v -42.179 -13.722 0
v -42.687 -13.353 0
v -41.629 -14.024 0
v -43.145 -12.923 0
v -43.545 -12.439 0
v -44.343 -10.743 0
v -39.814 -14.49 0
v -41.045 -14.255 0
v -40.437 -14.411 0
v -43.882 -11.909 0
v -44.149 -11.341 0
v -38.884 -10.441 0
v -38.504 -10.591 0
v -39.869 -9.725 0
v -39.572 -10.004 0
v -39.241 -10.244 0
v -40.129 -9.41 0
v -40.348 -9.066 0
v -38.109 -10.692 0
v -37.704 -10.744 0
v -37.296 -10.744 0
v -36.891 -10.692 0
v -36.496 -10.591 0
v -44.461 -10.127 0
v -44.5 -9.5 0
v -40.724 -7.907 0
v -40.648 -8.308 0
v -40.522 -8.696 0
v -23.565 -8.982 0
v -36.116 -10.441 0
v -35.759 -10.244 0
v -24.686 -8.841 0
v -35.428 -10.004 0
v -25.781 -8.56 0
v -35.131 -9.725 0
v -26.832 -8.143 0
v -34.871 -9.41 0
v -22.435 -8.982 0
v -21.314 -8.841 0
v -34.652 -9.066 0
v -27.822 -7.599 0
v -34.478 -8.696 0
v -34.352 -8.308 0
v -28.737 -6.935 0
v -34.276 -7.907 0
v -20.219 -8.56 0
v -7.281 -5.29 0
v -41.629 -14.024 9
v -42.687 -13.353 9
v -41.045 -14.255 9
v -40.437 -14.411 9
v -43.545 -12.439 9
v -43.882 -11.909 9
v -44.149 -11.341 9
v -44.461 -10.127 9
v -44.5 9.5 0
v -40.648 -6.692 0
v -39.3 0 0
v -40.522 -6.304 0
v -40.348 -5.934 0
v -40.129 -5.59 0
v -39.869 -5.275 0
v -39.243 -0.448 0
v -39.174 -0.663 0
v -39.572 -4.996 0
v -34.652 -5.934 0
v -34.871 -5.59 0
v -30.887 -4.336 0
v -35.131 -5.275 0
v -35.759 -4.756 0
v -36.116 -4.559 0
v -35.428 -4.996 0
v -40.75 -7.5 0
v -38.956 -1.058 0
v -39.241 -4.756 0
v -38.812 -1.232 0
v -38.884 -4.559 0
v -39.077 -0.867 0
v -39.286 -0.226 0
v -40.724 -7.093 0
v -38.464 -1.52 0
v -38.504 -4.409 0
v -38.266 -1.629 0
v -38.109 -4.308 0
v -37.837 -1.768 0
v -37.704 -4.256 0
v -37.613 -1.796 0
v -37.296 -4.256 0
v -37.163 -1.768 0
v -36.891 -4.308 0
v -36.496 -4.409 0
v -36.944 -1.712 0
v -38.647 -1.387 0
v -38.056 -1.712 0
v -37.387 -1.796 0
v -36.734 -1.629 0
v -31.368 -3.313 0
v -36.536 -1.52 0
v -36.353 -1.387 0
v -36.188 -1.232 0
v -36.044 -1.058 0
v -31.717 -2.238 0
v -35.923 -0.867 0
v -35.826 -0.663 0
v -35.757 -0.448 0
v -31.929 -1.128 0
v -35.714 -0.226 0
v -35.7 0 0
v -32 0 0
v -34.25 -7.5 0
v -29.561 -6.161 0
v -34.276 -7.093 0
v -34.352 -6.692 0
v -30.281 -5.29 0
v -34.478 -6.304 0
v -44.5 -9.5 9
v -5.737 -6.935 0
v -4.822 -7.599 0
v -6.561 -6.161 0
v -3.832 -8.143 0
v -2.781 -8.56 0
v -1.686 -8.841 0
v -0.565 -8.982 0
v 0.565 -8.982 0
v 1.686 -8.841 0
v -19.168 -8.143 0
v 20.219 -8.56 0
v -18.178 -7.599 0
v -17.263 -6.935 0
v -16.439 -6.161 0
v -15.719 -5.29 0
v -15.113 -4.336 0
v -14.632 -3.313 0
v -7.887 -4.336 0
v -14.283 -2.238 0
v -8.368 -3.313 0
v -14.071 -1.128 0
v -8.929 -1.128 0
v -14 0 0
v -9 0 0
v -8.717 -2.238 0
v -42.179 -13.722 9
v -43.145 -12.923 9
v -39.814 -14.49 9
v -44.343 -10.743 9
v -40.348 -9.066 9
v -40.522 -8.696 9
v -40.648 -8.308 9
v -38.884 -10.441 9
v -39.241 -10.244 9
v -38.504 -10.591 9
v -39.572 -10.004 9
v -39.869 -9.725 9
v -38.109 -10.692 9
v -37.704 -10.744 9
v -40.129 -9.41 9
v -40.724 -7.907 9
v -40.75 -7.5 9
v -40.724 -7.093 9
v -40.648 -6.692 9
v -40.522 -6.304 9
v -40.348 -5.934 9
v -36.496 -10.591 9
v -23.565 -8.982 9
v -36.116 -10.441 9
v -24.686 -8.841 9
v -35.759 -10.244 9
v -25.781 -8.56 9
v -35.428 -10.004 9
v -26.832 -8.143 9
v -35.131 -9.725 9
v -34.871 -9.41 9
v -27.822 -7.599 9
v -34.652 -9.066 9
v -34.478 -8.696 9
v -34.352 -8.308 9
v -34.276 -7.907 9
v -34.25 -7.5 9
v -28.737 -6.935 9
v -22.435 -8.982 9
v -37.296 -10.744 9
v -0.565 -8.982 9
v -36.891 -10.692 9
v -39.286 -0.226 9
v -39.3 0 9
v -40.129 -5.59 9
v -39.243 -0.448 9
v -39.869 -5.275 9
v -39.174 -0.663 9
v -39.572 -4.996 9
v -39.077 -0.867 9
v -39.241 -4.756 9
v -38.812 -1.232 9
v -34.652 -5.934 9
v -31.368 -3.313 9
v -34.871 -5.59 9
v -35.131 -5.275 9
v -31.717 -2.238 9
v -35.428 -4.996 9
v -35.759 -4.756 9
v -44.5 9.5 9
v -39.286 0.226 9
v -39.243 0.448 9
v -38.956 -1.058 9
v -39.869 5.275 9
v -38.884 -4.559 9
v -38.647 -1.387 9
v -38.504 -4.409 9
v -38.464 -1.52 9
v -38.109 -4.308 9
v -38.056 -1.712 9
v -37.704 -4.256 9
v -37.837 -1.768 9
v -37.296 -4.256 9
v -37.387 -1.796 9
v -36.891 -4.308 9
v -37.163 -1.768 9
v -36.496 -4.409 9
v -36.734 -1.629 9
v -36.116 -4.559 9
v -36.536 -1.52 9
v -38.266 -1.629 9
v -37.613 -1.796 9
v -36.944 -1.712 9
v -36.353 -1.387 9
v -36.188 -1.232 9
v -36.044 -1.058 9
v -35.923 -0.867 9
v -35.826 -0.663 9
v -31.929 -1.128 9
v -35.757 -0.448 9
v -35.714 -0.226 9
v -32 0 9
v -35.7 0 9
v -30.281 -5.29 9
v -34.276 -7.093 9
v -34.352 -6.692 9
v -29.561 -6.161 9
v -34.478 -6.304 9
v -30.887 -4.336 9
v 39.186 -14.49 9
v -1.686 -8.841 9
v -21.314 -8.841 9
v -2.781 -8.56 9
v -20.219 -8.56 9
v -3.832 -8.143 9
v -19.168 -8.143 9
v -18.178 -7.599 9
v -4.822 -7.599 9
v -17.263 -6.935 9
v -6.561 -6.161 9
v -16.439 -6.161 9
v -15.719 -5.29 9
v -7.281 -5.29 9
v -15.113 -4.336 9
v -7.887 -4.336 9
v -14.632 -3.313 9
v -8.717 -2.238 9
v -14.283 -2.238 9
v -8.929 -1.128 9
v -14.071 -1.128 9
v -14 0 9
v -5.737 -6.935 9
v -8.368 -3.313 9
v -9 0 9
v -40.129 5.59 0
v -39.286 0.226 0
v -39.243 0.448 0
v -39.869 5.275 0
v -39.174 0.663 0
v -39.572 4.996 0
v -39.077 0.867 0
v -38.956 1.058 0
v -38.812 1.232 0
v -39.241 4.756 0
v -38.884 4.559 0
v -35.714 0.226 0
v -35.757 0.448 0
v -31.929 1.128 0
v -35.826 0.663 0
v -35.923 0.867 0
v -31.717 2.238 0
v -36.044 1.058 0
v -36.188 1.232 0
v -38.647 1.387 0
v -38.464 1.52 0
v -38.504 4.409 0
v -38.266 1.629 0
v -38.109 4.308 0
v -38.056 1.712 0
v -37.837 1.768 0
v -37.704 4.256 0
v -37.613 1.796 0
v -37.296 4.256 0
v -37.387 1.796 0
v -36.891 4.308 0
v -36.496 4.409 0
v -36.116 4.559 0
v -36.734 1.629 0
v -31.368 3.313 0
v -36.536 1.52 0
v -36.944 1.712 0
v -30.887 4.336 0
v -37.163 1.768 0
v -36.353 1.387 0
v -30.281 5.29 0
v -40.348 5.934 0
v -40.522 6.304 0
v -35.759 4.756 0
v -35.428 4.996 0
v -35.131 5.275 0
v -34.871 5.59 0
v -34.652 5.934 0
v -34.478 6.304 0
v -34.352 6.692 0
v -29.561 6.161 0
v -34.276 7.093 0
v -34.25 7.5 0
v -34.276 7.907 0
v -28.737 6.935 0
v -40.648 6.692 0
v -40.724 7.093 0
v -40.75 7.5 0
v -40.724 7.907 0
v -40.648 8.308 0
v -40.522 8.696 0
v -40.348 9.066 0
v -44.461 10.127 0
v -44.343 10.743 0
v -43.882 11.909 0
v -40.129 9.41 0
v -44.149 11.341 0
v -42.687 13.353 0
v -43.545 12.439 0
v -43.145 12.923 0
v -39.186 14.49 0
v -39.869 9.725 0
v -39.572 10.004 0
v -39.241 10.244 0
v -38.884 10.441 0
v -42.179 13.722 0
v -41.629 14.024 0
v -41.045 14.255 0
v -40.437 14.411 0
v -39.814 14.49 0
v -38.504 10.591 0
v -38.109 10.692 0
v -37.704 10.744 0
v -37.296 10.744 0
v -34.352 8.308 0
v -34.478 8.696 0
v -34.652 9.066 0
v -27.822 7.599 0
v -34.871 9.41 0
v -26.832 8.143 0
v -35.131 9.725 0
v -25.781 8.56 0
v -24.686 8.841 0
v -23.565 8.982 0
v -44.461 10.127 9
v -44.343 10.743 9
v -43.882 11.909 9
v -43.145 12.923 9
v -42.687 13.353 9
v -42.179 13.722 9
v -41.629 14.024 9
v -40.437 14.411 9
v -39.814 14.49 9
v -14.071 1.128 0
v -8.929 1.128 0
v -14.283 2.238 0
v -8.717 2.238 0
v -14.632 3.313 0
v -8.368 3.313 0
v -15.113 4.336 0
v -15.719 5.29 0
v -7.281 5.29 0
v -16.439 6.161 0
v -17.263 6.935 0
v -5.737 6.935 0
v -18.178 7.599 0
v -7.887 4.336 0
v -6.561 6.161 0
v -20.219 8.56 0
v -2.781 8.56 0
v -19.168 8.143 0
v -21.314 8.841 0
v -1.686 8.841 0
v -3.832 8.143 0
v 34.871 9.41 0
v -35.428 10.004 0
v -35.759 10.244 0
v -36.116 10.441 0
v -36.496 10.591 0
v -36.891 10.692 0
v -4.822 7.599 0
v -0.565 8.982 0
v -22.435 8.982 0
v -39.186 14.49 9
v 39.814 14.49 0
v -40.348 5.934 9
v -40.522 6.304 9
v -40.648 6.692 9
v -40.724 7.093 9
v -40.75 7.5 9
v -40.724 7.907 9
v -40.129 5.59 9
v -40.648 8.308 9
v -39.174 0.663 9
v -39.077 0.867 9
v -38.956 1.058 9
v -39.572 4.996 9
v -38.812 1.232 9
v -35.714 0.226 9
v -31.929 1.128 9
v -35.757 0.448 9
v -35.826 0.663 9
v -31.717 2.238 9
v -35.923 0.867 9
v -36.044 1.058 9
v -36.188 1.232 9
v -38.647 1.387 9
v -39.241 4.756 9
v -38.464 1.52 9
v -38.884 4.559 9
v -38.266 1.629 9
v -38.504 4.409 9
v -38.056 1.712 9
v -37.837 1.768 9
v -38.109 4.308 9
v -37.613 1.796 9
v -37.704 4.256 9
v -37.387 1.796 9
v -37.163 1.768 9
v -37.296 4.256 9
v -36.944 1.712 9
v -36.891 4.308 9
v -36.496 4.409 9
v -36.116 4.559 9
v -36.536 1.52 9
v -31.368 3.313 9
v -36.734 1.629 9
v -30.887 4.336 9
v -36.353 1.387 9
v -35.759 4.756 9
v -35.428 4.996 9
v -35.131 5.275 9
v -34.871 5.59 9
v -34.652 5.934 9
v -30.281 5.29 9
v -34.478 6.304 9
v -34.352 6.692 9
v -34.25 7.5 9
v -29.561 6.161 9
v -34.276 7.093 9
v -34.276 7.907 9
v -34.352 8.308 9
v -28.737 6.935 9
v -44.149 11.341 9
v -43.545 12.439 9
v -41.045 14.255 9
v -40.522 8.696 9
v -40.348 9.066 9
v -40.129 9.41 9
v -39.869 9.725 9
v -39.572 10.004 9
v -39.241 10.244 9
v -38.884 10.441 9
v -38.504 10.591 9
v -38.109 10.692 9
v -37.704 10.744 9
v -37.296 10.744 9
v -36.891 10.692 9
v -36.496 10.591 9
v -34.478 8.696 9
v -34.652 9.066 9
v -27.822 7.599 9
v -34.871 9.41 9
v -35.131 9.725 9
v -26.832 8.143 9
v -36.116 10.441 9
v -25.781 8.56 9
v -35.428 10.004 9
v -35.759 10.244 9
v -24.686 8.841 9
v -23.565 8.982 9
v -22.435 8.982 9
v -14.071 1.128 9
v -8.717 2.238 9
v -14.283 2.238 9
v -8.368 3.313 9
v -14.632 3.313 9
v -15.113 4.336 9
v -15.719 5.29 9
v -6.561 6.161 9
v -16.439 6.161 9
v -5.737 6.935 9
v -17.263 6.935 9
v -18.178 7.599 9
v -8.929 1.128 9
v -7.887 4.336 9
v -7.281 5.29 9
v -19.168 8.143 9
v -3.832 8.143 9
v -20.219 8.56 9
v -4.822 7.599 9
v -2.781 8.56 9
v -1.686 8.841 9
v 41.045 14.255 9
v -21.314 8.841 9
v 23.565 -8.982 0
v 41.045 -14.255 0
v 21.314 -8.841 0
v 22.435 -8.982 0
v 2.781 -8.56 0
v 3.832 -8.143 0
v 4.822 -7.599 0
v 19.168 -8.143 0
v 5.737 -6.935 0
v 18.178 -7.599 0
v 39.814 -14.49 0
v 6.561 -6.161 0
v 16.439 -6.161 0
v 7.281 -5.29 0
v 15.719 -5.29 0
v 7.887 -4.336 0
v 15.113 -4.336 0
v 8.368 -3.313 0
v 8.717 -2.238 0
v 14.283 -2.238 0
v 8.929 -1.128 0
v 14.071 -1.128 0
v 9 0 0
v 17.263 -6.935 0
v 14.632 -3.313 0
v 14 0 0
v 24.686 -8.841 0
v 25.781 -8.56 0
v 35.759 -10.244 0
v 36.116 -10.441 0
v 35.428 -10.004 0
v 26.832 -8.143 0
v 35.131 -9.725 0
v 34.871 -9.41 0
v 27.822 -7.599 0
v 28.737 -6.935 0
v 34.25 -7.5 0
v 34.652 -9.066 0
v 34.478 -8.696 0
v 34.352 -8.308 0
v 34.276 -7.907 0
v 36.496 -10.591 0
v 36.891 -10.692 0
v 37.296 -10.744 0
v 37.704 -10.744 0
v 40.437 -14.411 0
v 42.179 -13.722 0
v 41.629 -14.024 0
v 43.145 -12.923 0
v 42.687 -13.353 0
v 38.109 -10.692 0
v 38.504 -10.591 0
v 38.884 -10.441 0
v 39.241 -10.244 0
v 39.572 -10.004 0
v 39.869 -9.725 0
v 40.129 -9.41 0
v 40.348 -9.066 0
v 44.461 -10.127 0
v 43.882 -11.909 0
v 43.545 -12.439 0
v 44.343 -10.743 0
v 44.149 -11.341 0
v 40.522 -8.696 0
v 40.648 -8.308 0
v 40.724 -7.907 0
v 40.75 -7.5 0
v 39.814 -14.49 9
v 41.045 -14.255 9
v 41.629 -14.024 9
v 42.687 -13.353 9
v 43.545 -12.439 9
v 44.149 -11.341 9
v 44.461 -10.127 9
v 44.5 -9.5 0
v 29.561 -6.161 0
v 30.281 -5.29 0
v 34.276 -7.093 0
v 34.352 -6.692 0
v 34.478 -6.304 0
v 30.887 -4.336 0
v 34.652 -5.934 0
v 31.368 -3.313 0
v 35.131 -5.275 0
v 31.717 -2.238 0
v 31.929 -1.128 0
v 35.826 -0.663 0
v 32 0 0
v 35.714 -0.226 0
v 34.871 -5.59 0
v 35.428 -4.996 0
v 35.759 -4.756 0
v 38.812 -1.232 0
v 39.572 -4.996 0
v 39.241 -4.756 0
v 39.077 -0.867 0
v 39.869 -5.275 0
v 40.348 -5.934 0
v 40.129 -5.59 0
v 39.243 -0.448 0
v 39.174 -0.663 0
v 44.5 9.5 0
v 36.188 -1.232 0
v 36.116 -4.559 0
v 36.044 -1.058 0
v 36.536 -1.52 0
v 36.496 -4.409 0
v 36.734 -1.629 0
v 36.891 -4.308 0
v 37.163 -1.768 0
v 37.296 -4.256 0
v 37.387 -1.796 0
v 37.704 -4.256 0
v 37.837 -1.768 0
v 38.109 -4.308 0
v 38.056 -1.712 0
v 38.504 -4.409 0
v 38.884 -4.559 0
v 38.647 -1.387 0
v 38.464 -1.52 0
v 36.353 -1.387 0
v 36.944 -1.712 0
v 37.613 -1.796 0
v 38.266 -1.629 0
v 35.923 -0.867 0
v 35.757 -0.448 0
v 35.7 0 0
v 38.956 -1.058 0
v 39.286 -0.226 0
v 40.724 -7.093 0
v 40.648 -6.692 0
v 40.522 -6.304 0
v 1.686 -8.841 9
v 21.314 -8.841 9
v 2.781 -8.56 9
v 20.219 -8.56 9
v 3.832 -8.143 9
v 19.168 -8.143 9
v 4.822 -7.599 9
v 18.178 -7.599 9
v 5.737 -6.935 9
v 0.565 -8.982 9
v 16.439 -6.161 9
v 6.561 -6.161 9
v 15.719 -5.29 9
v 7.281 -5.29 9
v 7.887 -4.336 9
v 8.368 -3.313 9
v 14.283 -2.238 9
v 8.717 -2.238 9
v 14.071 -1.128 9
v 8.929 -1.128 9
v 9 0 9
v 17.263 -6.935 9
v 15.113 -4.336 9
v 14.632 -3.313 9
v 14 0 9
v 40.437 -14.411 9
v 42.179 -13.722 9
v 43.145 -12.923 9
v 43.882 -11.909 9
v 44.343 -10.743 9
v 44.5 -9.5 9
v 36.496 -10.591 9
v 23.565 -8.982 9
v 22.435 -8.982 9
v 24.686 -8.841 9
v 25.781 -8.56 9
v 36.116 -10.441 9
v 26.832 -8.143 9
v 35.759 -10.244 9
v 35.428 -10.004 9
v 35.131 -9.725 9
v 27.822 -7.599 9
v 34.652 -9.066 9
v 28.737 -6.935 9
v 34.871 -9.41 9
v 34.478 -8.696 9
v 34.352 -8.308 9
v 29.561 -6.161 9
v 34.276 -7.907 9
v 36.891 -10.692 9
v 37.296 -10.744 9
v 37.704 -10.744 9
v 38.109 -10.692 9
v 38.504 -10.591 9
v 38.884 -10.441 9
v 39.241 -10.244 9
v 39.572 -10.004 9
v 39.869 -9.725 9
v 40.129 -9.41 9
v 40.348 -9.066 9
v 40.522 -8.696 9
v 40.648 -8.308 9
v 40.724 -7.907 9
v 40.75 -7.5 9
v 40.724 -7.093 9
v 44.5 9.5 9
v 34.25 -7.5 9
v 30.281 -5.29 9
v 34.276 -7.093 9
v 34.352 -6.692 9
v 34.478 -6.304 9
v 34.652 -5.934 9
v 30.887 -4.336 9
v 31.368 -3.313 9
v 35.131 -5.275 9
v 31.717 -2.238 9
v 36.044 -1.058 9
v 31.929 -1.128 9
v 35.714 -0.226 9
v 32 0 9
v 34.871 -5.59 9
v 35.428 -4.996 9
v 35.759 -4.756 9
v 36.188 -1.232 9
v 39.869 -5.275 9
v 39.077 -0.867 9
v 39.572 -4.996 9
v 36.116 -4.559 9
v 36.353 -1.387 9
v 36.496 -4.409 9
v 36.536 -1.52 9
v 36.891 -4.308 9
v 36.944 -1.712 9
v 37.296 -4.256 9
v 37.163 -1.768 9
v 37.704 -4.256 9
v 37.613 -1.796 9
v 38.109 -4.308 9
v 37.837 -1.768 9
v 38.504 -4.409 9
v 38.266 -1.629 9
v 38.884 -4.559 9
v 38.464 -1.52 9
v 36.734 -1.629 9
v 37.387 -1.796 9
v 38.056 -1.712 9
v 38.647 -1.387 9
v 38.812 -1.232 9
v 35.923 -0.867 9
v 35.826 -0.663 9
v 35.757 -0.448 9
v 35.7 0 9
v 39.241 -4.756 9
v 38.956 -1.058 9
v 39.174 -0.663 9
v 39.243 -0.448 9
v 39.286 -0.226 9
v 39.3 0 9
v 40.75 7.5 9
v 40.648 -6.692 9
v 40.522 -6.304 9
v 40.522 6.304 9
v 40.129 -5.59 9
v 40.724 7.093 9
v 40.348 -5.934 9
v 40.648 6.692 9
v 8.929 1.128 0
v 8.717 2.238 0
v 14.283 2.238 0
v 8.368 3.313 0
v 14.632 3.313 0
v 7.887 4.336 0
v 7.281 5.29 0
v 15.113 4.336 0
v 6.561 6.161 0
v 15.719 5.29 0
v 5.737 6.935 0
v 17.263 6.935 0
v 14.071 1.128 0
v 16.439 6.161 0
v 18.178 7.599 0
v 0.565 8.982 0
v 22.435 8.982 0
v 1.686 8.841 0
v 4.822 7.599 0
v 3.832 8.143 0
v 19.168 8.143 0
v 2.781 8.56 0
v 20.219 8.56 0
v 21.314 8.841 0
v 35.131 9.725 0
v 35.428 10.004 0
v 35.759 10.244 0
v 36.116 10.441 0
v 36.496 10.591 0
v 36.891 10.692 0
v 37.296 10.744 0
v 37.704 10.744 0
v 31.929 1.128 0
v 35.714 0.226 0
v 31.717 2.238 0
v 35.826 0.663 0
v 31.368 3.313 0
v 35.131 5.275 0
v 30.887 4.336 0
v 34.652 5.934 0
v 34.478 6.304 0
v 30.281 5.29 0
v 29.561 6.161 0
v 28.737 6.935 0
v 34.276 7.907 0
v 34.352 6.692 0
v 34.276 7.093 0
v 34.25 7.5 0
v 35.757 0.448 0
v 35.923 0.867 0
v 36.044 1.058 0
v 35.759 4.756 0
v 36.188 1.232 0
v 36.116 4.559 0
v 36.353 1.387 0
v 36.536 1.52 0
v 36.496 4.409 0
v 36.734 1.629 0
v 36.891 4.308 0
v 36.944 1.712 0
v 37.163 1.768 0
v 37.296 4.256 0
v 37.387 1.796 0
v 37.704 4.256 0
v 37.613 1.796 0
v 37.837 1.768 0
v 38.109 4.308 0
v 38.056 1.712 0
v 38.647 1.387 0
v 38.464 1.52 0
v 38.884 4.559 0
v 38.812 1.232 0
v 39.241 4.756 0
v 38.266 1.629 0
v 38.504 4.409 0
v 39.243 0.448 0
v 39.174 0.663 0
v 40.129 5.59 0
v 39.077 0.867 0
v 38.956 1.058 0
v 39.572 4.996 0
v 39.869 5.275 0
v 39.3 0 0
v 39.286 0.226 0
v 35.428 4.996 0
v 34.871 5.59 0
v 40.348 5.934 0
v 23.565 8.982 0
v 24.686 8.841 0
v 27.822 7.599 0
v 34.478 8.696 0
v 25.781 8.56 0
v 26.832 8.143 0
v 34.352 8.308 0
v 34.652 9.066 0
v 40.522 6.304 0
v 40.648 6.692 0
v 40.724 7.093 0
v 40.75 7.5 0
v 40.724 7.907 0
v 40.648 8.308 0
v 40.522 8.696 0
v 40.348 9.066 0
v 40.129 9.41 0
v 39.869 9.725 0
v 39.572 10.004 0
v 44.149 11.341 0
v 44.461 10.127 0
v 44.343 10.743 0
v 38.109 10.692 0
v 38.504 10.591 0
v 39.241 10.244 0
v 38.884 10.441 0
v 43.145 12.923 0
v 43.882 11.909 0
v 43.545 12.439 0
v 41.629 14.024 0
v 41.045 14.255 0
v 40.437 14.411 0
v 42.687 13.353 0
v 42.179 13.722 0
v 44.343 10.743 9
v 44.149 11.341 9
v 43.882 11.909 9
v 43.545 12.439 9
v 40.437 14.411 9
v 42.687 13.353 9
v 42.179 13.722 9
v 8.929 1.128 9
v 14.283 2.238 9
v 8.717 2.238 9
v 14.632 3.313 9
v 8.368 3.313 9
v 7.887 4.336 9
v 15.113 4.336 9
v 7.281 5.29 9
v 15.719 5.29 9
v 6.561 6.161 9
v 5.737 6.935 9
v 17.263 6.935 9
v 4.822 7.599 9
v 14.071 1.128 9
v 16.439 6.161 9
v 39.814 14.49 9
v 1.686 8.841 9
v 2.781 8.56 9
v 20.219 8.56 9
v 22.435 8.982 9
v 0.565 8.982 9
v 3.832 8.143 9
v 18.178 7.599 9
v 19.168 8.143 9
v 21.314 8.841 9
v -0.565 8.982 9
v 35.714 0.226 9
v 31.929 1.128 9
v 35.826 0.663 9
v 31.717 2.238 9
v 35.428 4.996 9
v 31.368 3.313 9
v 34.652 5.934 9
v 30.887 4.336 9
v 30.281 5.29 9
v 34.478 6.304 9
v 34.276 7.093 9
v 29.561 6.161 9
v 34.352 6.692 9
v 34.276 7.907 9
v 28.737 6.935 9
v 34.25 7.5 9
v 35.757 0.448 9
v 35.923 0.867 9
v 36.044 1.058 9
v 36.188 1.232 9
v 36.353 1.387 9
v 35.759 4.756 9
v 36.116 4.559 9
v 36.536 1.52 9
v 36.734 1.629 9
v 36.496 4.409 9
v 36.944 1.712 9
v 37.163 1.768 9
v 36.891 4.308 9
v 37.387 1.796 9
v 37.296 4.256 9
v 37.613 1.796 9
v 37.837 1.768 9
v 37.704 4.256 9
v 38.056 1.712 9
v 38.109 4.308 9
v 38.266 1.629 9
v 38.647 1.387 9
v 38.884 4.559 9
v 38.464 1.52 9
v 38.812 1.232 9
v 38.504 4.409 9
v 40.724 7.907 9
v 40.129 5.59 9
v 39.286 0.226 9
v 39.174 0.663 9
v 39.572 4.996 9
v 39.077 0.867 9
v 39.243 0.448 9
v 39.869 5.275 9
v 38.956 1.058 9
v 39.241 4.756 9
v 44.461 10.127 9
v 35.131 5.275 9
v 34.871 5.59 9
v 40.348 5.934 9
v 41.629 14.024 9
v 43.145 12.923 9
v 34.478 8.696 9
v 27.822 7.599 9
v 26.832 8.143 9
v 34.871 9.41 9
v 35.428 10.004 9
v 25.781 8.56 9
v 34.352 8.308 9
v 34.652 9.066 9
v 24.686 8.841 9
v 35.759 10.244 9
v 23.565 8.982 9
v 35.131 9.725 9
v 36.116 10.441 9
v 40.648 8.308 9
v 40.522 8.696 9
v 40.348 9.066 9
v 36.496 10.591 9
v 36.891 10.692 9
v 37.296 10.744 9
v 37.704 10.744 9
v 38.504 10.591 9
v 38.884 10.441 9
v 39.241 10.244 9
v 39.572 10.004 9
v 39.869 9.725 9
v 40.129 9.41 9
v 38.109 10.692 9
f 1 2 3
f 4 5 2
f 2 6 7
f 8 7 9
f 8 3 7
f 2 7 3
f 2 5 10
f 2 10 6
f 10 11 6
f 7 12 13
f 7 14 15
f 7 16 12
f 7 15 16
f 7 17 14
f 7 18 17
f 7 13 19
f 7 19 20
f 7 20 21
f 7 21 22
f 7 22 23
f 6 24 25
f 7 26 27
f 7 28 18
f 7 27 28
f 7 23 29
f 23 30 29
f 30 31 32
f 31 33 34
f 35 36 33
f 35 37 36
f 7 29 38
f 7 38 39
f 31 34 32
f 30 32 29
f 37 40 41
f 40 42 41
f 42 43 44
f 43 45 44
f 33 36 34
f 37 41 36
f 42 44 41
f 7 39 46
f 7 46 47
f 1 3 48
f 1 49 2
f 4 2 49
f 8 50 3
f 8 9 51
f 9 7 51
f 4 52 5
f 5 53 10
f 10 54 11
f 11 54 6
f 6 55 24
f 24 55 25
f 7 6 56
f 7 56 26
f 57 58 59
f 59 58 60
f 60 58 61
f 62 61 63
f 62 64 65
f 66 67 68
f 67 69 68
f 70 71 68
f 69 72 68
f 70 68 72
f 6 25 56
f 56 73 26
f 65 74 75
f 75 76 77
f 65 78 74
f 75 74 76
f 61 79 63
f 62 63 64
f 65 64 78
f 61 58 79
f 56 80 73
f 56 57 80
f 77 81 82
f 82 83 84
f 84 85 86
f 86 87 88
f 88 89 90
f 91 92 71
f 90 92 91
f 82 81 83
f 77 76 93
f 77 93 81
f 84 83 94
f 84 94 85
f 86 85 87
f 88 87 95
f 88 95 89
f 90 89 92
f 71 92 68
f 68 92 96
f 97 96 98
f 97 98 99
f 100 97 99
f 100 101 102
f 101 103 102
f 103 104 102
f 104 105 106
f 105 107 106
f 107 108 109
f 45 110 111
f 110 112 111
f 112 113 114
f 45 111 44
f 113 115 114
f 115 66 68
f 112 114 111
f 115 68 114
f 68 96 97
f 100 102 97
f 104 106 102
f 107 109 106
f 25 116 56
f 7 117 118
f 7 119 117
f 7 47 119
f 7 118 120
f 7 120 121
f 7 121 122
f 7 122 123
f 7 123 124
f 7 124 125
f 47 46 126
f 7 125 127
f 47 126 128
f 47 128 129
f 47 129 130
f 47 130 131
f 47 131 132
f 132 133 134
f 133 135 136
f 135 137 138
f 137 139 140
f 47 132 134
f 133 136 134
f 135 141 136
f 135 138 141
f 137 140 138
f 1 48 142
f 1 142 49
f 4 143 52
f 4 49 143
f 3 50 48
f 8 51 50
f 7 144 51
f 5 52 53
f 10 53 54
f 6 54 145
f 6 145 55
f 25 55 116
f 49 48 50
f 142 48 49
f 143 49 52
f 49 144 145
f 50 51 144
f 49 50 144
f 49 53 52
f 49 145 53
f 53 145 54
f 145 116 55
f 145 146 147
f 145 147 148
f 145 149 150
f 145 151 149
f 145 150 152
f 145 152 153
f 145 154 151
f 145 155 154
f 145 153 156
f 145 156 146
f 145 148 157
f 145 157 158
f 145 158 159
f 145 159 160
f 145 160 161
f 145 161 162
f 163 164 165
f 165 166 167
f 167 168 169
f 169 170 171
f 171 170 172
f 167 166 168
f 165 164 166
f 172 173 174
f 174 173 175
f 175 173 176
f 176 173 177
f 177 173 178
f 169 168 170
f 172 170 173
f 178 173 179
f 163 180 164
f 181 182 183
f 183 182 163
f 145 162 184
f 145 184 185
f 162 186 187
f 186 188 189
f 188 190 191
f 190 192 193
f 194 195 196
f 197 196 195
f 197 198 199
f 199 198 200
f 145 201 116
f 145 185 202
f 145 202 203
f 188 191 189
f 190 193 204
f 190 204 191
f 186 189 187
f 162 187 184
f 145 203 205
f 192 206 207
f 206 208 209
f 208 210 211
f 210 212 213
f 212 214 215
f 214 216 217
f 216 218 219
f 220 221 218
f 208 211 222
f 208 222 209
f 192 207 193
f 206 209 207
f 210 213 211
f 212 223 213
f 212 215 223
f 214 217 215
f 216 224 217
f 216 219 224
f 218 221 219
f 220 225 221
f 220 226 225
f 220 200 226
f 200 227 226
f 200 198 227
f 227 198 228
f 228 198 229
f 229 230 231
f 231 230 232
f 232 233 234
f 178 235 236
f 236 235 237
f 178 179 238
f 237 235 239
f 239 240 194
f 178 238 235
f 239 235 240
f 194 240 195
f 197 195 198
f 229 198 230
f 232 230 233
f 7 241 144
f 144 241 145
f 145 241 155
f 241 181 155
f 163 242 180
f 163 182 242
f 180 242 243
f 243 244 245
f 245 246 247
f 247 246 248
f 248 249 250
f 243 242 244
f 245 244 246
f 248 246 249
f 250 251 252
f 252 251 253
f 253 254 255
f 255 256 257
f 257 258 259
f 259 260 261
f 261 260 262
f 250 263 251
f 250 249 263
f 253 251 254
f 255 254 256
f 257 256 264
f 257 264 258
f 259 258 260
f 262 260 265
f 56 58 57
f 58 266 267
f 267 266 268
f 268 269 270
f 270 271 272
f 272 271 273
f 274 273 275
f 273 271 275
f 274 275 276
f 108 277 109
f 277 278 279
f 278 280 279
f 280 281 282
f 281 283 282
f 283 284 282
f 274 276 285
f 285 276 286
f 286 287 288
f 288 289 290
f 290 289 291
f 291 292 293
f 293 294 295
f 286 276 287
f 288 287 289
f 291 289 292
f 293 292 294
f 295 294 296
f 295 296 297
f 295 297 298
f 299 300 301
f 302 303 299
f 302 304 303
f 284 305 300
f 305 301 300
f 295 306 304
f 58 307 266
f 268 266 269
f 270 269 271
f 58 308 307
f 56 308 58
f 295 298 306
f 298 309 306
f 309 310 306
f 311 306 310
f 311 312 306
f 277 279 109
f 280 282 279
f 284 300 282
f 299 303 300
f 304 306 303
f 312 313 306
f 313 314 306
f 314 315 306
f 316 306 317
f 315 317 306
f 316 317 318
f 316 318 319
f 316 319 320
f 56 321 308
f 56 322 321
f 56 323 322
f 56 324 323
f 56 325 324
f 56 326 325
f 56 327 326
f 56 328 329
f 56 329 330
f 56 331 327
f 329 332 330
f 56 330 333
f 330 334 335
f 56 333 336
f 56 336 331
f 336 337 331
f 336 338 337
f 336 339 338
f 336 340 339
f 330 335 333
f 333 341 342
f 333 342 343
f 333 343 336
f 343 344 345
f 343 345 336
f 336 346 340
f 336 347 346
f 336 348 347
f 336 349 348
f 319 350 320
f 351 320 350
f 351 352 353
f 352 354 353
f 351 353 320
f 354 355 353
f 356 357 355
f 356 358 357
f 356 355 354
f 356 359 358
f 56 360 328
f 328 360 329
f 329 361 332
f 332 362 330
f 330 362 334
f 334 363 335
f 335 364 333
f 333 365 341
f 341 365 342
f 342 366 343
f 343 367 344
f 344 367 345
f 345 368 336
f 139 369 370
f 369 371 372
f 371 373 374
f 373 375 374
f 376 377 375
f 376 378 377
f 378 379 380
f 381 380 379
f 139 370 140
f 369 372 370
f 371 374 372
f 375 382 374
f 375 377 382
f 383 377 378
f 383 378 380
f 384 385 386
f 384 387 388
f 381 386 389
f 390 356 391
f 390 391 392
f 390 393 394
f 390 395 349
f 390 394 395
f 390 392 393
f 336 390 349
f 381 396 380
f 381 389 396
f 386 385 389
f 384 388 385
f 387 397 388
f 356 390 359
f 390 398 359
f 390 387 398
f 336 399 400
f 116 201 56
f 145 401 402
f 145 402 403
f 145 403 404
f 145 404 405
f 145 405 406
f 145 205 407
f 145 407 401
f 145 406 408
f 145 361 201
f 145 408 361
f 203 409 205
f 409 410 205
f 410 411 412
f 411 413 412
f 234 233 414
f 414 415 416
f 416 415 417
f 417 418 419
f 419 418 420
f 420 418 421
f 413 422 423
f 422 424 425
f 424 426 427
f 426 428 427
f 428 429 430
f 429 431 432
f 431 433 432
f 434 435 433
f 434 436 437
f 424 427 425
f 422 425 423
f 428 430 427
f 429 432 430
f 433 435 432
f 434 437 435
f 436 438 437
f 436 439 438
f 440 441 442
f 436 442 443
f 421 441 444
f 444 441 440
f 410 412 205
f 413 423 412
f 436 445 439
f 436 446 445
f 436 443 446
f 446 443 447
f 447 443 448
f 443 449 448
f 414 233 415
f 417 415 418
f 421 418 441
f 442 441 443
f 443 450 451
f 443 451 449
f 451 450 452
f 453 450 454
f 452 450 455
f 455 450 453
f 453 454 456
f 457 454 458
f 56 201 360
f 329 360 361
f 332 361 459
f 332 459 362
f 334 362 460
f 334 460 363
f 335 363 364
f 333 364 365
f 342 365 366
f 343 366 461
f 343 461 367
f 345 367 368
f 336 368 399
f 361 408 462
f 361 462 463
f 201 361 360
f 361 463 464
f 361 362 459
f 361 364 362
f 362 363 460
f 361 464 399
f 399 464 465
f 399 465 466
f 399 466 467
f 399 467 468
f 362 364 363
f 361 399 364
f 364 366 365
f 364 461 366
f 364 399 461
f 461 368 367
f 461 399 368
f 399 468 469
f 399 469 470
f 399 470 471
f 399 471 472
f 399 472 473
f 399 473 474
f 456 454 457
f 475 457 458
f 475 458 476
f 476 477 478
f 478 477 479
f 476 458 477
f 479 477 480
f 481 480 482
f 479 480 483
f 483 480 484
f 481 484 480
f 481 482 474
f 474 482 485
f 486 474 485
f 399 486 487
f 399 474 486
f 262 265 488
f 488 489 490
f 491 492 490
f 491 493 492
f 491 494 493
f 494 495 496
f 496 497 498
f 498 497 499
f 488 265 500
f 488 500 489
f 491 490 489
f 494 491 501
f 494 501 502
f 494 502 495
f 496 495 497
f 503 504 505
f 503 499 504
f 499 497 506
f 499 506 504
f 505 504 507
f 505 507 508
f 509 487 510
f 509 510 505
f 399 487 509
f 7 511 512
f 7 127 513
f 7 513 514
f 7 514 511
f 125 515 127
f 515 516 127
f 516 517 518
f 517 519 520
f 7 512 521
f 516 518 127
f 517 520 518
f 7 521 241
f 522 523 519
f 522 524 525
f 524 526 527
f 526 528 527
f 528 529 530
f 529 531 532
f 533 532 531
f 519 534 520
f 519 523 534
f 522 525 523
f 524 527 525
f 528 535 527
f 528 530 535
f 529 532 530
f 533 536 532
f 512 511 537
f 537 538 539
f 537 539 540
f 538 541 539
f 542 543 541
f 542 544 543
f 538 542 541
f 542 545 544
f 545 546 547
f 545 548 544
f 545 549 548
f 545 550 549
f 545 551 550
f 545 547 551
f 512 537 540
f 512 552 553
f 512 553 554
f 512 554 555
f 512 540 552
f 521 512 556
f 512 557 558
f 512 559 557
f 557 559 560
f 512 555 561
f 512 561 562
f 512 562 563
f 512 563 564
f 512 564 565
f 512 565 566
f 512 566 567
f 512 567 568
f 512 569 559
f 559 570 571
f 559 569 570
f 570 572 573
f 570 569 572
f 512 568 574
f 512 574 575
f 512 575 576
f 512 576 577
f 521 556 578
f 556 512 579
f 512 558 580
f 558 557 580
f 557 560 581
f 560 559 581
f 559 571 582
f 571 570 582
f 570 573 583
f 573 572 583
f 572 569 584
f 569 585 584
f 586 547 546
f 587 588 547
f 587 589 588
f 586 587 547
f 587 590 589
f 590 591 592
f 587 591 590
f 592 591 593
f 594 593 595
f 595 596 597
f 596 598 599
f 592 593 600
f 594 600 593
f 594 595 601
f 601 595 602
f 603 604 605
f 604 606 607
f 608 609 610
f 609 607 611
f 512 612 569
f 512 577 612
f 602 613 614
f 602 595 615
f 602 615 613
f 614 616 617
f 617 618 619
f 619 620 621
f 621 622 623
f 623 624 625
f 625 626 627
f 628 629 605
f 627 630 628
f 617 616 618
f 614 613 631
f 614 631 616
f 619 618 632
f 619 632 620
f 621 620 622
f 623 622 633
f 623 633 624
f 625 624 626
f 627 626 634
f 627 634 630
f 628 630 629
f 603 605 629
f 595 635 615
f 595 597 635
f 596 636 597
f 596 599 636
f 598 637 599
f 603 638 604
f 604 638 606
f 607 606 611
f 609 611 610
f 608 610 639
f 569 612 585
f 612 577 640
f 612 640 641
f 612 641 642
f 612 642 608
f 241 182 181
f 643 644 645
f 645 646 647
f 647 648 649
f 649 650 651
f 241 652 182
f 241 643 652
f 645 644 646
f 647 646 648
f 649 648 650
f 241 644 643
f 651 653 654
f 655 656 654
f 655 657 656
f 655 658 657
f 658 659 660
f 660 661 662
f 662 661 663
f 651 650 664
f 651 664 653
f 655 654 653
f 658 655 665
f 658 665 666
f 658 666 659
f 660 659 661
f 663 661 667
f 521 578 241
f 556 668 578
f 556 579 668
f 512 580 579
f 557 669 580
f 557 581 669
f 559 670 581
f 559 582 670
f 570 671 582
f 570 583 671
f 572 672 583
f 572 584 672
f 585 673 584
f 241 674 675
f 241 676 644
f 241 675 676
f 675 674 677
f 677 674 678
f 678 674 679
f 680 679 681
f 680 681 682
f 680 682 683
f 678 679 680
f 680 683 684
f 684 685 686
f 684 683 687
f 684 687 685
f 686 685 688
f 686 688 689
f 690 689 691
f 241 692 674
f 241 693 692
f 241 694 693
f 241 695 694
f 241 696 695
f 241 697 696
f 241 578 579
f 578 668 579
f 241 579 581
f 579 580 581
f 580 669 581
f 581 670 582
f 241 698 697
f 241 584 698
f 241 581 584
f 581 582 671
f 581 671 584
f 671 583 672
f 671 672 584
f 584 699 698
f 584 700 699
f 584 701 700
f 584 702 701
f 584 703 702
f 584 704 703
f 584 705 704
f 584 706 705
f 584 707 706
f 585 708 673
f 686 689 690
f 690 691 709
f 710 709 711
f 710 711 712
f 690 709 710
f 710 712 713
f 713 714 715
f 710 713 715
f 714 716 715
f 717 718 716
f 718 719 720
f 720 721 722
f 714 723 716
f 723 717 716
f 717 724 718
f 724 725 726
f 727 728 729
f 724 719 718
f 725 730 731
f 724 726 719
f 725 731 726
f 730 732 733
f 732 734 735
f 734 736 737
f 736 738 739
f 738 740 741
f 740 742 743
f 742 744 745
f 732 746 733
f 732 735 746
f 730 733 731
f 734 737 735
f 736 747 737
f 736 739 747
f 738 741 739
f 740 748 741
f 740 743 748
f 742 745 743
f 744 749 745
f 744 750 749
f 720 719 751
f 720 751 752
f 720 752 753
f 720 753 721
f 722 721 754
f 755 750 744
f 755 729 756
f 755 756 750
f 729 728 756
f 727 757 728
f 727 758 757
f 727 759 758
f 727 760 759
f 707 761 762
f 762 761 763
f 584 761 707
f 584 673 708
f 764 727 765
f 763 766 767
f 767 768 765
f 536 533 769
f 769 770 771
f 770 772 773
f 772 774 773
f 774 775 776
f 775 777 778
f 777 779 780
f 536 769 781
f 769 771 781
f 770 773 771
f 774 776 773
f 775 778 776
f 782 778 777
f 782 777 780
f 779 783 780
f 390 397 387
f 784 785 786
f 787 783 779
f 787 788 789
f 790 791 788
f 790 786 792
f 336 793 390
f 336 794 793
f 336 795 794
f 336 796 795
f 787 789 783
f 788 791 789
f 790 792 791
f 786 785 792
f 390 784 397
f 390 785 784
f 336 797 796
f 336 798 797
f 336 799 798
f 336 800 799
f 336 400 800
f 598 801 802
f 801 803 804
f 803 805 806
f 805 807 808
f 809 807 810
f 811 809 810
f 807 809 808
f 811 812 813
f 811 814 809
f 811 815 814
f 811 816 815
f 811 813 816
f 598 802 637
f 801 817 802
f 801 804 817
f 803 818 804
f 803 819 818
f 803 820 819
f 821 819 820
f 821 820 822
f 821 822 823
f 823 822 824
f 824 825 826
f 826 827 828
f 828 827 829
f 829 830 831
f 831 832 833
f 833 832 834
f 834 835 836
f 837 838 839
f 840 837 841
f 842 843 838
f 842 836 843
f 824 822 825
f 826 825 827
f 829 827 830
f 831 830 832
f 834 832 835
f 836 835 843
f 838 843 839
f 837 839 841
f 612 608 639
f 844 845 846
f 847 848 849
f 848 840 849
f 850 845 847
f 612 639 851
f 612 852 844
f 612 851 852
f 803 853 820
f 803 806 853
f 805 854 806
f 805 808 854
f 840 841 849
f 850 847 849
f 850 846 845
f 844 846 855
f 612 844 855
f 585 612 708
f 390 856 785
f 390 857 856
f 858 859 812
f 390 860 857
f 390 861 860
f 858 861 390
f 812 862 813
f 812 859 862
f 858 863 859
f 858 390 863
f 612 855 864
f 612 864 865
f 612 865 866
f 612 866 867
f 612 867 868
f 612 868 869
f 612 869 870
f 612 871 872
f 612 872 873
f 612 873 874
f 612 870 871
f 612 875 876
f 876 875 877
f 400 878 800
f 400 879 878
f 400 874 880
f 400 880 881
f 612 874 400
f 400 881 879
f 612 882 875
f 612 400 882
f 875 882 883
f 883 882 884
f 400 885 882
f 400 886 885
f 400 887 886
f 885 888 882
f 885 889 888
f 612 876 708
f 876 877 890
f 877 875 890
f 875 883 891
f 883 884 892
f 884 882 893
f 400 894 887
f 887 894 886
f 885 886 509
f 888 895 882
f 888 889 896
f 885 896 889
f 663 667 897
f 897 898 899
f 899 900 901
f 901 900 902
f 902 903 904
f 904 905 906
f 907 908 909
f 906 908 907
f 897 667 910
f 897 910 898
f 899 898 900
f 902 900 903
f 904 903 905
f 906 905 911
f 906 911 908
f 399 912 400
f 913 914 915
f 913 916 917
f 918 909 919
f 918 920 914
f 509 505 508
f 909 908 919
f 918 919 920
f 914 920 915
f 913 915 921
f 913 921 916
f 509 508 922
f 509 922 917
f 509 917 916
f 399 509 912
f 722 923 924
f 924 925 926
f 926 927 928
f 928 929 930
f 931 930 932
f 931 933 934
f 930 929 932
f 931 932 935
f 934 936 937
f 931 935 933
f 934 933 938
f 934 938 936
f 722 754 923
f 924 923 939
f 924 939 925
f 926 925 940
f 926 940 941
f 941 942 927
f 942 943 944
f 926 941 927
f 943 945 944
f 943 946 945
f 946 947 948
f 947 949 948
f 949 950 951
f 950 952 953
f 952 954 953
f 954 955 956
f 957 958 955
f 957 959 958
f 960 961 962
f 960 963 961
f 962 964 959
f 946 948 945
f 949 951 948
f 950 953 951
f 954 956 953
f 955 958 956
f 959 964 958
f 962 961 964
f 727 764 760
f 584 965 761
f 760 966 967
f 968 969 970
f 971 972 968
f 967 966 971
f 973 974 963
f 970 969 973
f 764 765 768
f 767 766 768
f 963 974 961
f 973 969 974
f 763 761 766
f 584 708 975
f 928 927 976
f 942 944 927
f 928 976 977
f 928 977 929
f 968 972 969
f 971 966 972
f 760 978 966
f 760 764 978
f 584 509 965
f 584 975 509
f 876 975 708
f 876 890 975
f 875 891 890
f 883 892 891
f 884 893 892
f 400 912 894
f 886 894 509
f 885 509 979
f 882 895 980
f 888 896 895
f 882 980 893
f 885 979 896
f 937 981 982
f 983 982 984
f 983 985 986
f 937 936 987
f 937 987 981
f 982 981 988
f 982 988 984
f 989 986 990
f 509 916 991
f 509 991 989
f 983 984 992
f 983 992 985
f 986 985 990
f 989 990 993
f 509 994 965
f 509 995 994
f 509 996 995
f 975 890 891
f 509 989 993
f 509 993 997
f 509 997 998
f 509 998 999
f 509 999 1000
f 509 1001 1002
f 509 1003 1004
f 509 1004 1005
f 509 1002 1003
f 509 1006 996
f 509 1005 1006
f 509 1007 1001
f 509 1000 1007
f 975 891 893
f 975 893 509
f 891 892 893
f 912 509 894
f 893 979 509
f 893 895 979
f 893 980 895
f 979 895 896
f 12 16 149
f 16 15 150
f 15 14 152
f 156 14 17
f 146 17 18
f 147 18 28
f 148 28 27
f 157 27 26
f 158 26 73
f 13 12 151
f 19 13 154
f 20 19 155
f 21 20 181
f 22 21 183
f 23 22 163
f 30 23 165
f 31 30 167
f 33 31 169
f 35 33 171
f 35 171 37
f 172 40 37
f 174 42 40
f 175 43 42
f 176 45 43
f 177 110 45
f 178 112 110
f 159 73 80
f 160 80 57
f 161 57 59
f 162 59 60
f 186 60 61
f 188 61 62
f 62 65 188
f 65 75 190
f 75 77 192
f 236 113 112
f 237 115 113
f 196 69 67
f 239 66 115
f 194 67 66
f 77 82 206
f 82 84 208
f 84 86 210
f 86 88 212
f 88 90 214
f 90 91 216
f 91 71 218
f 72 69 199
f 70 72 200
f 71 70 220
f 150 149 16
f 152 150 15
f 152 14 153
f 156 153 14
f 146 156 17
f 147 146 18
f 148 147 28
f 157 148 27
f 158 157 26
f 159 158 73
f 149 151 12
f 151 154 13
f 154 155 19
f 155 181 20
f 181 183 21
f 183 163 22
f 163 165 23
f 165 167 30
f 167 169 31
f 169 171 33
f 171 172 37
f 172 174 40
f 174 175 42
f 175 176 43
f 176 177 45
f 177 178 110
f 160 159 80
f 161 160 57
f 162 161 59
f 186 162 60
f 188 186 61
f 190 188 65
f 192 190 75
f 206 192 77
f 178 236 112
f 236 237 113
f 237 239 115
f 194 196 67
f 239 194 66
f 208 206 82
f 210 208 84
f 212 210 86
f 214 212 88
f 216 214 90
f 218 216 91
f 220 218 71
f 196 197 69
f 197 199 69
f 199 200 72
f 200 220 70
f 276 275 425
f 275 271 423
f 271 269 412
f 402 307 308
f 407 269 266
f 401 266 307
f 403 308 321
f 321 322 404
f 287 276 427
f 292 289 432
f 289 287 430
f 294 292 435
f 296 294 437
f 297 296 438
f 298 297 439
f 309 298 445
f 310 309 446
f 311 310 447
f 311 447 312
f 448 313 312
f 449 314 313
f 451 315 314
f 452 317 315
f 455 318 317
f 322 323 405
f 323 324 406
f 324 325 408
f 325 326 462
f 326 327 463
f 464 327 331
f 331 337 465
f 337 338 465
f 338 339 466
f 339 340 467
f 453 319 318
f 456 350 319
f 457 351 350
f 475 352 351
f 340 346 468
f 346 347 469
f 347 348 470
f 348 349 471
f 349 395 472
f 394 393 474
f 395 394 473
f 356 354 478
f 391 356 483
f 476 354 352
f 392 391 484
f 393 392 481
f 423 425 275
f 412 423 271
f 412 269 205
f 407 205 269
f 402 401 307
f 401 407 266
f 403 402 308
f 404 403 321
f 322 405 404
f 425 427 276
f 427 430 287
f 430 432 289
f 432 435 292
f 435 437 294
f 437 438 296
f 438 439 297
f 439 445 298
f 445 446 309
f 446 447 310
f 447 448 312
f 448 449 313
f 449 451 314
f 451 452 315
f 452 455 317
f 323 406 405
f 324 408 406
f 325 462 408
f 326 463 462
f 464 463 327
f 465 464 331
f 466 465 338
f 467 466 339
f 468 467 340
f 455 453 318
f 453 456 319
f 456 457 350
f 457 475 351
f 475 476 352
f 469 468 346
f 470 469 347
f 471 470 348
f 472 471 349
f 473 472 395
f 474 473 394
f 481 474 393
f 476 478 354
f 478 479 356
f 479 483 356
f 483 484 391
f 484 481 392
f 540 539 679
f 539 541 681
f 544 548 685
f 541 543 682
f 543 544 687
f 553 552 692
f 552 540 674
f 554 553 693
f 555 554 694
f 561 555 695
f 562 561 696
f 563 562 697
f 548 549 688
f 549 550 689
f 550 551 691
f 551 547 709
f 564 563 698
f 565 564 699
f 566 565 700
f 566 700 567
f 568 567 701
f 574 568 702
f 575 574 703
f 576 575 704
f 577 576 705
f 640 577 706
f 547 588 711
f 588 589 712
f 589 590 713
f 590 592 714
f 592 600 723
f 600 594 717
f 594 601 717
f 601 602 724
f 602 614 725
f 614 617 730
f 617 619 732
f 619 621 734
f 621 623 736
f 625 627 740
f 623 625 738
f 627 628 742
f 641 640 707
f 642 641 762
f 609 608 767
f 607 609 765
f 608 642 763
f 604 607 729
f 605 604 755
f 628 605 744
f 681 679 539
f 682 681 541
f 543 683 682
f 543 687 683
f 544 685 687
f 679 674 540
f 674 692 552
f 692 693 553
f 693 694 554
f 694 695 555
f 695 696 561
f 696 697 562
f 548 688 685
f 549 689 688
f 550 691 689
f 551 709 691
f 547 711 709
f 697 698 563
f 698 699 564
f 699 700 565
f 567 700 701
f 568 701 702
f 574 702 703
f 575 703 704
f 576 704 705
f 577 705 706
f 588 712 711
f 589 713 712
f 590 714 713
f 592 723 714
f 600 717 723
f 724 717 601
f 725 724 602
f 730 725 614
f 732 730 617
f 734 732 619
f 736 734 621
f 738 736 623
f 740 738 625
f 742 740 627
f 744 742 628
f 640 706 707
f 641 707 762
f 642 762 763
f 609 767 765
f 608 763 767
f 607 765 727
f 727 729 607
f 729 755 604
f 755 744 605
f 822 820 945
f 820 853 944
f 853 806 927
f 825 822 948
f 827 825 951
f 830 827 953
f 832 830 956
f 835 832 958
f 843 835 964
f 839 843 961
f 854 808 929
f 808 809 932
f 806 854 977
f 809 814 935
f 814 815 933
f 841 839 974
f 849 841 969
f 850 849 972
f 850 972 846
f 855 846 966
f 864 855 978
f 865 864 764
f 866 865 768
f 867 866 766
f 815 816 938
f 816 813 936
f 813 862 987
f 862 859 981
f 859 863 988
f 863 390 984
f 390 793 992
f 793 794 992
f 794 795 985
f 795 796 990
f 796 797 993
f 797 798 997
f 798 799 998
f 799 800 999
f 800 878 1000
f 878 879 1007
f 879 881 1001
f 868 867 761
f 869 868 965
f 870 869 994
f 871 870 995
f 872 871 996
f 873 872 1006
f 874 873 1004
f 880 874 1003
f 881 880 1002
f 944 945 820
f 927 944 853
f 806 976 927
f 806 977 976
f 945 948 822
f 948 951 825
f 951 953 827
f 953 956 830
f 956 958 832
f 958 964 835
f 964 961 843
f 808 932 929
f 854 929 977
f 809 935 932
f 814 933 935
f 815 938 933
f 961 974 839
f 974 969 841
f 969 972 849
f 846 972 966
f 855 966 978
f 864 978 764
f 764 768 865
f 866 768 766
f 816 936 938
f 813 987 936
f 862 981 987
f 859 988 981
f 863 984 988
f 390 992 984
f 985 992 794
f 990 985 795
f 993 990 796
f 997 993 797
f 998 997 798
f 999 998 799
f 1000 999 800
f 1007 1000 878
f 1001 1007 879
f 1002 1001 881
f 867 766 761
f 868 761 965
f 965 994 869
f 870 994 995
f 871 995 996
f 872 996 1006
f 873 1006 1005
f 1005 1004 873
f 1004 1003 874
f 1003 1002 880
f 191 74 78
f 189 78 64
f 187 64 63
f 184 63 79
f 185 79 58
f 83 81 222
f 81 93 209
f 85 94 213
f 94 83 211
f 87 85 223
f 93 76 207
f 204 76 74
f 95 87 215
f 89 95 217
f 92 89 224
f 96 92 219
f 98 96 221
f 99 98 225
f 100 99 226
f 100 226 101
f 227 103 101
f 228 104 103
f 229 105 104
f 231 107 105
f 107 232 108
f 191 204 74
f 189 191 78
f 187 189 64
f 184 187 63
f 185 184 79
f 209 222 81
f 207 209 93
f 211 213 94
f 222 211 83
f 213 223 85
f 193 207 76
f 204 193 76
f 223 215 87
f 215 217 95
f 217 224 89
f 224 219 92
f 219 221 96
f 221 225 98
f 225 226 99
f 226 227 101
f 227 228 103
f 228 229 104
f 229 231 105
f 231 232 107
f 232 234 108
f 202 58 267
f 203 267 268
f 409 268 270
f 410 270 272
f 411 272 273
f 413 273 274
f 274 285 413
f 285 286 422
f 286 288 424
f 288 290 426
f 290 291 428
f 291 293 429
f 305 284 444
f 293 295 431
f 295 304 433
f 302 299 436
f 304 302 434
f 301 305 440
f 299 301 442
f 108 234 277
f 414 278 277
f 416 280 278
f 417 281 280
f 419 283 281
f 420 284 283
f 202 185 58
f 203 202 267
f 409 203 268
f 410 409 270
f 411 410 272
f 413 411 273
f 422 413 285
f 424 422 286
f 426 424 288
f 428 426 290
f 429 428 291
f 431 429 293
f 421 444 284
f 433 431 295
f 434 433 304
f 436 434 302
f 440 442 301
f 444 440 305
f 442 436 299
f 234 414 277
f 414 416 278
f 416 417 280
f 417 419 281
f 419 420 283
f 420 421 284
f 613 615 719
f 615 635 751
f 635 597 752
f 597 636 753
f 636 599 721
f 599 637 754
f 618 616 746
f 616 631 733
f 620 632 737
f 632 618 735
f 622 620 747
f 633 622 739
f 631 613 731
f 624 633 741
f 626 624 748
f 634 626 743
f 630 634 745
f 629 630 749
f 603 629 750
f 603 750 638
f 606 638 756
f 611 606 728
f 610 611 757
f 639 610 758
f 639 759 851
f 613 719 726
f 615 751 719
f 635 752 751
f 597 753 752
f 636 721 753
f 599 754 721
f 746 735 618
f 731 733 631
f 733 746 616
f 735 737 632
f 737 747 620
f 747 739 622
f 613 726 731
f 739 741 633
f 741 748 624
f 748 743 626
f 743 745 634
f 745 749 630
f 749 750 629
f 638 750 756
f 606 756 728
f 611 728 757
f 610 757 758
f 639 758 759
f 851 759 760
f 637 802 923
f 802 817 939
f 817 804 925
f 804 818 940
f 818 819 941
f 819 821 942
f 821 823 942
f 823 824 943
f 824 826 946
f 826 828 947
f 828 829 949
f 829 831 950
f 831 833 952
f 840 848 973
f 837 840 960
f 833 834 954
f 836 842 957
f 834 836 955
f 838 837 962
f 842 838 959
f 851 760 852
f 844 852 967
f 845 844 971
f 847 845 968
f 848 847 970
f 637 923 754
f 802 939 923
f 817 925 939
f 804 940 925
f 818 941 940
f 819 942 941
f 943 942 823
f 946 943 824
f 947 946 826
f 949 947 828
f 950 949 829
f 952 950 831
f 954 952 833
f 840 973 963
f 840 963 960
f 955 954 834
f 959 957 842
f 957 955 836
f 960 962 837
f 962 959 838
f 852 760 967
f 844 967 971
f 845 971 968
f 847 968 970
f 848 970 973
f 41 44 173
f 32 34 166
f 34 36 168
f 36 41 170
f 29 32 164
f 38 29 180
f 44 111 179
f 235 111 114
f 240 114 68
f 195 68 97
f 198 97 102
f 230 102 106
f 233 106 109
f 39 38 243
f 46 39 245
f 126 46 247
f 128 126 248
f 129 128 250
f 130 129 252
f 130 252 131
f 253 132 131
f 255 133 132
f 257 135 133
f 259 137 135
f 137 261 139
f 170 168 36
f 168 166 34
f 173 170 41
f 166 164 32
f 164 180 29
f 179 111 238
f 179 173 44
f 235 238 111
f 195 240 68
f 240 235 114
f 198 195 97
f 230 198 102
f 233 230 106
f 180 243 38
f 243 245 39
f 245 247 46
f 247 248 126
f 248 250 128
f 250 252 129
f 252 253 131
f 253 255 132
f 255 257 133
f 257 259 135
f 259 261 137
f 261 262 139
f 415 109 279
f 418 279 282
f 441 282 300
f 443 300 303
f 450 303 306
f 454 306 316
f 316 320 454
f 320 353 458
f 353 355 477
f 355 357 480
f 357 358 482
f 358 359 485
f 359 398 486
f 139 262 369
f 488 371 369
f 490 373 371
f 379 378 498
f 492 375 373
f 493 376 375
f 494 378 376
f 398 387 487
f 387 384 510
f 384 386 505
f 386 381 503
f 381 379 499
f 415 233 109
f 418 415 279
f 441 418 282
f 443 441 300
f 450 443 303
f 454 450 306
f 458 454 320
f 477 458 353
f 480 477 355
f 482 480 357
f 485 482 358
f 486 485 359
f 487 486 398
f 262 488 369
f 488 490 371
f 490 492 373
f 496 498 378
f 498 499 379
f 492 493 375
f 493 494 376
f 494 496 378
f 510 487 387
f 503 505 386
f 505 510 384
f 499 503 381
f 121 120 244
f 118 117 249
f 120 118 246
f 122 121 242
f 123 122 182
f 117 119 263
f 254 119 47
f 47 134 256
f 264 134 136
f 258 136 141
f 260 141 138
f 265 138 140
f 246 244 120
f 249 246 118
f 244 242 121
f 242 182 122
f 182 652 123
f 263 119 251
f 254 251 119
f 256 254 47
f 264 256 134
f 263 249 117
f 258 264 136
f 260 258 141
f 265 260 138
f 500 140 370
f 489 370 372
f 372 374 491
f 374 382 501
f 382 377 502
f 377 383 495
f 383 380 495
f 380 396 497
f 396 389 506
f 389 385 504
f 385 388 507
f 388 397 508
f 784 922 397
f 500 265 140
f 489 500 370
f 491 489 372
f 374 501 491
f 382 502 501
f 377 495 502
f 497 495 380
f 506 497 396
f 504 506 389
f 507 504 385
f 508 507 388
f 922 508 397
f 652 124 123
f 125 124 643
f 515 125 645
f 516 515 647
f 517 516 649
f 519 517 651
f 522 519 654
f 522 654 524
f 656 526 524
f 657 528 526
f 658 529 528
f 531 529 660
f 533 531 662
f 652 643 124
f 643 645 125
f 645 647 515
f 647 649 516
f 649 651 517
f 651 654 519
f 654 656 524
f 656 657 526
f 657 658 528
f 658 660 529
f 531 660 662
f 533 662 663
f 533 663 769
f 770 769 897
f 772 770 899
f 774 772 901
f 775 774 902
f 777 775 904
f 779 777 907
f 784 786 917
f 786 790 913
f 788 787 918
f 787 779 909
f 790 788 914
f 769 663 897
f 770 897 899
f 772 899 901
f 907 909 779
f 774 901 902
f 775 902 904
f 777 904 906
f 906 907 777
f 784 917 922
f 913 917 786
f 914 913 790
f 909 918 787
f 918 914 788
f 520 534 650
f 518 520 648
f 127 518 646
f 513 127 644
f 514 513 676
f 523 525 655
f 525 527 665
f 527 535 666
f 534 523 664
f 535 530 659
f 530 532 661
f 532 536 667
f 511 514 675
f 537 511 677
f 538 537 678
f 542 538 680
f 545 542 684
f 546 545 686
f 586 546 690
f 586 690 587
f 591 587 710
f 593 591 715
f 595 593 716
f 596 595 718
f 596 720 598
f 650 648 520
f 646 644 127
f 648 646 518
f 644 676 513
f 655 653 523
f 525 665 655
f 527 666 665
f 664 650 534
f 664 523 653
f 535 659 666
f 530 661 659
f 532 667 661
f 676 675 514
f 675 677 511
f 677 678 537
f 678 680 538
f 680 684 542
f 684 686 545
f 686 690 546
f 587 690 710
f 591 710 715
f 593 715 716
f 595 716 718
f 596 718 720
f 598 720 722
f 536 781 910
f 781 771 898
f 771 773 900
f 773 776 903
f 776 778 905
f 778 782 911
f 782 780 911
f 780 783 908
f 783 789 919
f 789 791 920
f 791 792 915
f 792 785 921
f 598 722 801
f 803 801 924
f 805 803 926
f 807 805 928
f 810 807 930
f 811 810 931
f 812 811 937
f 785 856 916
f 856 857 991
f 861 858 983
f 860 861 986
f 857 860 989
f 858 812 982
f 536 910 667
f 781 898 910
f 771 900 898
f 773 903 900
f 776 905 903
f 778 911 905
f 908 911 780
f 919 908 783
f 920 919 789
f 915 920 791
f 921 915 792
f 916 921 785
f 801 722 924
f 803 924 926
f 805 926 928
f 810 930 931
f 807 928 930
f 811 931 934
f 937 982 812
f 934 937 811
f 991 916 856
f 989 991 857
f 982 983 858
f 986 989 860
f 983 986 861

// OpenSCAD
$fn = 50;

difference() {
	union() {
		hull() {
			translate(v = [-39.5, 9.5, 0]) {
				cylinder(h = 9, r = 5);
			}
			translate(v = [39.5, 9.5, 0]) {
				cylinder(h = 9, r = 5);
			}
			translate(v = [-39.5, -9.5, 0]) {
				cylinder(h = 9, r = 5);
			}
			translate(v = [39.5, -9.5, 0]) {
				cylinder(h = 9, r = 5);
			}
		}
	}
	union() {
		translate(v = [-37.5, -7.5, 0]) {
			cylinder(h = 9, r = 3.25);
		}
		translate(v = [-37.5, 7.5, 0]) {
			cylinder(h = 9, r = 3.25);
		}
		translate(v = [37.5, -7.5, 0]) {
			cylinder(h = 9, r = 3.25);
		}
		translate(v = [37.5, 7.5, 0]) {
			cylinder(h = 9, r = 3.25);
		}
		translate(v = [-37.5, 0.0, 0]) {
			cylinder(h = 9, r = 1.8);
		}
		translate(v = [37.5, 0.0, 0]) {
			cylinder(h = 9, r = 1.8);
		}
		translate(v = [-23.0, 0, 0.0]) {
			cylinder(h = 9, r = 9.0);
		}
		cylinder(h = 9, r = 9.0);
		translate(v = [23.0, 0, 0.0]) {
			cylinder(h = 9, r = 9.0);
		}
	}
}
